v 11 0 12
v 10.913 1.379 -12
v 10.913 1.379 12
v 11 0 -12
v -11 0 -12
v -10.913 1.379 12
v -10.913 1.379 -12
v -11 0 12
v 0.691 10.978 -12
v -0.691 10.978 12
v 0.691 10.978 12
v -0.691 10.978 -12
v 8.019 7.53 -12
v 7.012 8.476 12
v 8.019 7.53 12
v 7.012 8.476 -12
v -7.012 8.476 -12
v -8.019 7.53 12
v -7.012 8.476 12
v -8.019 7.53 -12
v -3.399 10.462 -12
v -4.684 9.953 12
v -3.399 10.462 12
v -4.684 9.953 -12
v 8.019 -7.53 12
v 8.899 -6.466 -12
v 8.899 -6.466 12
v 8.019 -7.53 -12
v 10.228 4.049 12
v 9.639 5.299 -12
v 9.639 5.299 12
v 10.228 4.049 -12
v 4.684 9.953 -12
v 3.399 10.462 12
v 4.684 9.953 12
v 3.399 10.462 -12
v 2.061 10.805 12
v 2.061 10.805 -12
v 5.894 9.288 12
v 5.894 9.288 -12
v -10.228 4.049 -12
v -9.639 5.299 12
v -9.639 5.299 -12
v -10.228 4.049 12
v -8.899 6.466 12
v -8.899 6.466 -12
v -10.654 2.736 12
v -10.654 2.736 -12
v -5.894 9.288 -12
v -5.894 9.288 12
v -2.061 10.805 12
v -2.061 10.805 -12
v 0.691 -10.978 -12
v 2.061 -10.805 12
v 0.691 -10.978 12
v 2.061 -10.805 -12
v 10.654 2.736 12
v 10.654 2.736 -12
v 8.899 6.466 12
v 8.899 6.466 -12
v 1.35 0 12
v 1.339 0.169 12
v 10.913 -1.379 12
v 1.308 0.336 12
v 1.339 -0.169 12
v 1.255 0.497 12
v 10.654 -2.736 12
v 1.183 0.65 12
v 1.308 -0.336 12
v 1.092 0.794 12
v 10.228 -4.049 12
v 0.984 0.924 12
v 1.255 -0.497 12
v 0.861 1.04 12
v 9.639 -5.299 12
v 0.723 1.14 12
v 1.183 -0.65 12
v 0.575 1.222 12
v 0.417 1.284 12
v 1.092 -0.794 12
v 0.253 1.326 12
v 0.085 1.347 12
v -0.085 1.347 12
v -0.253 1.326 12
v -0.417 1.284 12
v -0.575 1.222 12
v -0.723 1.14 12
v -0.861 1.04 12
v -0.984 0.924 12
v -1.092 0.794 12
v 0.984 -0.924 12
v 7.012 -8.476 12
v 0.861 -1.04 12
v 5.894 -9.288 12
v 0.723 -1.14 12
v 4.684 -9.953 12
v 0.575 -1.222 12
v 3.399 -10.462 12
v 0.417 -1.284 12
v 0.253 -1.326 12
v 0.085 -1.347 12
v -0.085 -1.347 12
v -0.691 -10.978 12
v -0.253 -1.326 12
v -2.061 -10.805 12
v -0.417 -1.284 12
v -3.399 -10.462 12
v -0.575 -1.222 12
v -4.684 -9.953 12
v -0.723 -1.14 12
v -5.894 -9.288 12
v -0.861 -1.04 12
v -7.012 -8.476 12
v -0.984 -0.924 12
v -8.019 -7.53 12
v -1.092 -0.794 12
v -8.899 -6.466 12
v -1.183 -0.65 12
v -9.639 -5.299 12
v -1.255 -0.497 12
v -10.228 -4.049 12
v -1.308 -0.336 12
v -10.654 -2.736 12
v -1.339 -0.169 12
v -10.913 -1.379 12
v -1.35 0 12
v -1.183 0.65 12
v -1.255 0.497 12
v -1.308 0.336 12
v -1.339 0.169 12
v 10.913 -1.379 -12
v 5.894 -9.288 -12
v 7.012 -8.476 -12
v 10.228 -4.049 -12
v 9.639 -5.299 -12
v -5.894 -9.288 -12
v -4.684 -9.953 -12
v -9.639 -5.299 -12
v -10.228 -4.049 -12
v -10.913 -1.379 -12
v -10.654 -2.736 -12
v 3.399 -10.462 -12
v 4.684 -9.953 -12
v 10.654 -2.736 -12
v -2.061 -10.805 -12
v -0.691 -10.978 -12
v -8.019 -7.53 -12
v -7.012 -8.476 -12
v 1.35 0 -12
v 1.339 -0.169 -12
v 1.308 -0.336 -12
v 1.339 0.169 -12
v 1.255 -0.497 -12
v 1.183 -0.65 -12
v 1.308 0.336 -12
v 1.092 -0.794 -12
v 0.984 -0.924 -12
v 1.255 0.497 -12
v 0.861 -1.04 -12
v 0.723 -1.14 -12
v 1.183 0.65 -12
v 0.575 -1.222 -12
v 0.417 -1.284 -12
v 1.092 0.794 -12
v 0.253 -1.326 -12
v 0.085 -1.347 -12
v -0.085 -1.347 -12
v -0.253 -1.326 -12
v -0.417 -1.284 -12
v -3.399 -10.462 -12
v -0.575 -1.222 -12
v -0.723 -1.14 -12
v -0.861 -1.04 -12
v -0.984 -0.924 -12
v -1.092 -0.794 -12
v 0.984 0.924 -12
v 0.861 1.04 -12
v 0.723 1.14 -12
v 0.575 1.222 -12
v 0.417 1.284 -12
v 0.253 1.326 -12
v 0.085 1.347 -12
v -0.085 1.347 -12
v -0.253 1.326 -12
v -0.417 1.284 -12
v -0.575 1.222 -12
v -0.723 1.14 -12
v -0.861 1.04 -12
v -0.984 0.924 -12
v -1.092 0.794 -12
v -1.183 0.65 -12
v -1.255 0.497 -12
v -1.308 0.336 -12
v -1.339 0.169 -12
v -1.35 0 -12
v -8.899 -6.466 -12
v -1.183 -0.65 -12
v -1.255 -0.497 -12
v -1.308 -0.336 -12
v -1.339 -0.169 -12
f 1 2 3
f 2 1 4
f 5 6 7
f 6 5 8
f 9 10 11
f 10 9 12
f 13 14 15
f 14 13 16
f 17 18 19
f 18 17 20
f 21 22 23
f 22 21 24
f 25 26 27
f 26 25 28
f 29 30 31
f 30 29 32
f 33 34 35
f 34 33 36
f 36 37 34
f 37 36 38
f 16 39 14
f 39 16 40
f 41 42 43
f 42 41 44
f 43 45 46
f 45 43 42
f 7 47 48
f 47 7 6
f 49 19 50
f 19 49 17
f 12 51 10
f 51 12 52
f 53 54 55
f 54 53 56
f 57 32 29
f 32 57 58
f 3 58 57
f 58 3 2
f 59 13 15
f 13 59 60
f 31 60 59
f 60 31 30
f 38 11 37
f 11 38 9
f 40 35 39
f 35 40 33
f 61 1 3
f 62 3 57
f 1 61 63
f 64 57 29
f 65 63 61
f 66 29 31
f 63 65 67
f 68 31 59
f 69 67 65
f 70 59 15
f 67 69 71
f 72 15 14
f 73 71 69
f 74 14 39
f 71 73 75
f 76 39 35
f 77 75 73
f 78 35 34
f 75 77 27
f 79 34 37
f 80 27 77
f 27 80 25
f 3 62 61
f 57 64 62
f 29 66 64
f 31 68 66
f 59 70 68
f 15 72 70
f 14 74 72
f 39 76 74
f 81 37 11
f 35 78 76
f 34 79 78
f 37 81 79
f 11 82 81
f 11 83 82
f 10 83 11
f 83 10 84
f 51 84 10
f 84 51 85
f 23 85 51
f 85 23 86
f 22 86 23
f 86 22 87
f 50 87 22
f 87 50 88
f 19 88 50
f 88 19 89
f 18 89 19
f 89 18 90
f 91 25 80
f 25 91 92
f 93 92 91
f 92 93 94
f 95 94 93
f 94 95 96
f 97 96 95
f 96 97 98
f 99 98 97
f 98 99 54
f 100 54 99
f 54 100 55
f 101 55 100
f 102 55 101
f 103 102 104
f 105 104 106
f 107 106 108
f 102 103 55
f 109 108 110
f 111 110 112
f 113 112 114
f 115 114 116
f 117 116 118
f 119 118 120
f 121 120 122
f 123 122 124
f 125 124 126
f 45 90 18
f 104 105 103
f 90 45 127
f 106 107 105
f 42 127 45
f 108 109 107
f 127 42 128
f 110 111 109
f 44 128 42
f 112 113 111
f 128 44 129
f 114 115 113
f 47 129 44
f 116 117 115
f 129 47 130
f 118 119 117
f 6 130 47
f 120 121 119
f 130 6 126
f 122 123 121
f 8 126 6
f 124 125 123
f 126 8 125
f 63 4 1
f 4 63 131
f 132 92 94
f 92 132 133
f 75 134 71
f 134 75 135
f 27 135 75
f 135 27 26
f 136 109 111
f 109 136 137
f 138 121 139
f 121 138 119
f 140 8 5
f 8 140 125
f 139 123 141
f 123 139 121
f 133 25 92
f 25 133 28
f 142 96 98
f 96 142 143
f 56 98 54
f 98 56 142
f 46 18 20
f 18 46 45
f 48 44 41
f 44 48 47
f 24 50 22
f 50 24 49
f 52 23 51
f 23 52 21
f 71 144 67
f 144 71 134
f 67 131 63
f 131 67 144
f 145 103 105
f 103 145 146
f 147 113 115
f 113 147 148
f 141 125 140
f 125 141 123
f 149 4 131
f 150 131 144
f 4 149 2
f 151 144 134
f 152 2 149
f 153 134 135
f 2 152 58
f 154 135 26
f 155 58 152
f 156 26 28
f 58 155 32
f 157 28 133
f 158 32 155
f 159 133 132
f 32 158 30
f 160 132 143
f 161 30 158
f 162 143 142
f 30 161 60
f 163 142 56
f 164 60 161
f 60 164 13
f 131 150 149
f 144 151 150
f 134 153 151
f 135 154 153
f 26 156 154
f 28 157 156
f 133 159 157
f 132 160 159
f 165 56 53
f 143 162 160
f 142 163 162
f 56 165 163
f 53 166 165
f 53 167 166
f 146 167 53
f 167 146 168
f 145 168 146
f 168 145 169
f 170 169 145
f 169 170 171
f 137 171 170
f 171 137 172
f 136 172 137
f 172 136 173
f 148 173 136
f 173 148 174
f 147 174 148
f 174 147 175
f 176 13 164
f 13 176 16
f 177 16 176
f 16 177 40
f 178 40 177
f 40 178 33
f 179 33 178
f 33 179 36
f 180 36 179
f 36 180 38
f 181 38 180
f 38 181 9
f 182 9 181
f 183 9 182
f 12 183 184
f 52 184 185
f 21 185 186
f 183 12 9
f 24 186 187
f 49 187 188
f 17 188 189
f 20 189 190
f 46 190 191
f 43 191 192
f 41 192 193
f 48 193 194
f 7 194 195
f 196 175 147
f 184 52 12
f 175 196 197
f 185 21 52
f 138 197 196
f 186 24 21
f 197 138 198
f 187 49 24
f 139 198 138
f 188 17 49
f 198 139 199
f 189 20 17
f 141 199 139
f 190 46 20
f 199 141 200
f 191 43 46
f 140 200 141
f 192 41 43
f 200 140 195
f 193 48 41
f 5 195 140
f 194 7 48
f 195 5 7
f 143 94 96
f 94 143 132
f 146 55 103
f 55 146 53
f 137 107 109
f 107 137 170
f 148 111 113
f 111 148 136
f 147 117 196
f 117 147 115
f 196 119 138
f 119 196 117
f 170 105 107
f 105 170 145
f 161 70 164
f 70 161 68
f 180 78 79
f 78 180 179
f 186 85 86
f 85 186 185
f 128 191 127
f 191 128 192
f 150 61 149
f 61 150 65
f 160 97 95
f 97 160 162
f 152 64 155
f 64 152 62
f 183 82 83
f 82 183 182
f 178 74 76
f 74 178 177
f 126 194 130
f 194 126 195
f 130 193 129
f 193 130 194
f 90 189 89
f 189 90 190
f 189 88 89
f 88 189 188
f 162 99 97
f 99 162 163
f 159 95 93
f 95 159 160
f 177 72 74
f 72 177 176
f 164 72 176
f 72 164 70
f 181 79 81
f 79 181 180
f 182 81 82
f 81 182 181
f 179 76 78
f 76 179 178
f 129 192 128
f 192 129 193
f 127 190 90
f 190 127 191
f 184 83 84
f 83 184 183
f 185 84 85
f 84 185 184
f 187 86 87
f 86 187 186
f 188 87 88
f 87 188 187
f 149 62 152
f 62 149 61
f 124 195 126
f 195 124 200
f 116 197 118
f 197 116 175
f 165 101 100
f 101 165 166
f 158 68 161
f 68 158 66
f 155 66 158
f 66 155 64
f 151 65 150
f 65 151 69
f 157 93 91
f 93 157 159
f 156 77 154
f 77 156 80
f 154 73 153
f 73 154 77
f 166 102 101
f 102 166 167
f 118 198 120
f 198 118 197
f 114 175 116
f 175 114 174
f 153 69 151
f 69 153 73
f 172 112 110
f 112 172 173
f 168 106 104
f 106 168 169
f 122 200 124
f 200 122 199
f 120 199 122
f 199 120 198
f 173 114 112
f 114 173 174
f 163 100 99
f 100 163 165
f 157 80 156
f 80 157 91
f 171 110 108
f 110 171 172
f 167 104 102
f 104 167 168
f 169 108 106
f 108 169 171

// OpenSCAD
$fn = 50;


difference() {
	union() {
		translate(v = [0, 0, -12.0000000000]) {
			cylinder(h = 24, r = 11.0000000000);
		}
	}
	union() {
		translate(v = [0, 0, -100.0000000000]) {
			cylinder(h = 200, r = 1.3500000000);
		}
	}
}
